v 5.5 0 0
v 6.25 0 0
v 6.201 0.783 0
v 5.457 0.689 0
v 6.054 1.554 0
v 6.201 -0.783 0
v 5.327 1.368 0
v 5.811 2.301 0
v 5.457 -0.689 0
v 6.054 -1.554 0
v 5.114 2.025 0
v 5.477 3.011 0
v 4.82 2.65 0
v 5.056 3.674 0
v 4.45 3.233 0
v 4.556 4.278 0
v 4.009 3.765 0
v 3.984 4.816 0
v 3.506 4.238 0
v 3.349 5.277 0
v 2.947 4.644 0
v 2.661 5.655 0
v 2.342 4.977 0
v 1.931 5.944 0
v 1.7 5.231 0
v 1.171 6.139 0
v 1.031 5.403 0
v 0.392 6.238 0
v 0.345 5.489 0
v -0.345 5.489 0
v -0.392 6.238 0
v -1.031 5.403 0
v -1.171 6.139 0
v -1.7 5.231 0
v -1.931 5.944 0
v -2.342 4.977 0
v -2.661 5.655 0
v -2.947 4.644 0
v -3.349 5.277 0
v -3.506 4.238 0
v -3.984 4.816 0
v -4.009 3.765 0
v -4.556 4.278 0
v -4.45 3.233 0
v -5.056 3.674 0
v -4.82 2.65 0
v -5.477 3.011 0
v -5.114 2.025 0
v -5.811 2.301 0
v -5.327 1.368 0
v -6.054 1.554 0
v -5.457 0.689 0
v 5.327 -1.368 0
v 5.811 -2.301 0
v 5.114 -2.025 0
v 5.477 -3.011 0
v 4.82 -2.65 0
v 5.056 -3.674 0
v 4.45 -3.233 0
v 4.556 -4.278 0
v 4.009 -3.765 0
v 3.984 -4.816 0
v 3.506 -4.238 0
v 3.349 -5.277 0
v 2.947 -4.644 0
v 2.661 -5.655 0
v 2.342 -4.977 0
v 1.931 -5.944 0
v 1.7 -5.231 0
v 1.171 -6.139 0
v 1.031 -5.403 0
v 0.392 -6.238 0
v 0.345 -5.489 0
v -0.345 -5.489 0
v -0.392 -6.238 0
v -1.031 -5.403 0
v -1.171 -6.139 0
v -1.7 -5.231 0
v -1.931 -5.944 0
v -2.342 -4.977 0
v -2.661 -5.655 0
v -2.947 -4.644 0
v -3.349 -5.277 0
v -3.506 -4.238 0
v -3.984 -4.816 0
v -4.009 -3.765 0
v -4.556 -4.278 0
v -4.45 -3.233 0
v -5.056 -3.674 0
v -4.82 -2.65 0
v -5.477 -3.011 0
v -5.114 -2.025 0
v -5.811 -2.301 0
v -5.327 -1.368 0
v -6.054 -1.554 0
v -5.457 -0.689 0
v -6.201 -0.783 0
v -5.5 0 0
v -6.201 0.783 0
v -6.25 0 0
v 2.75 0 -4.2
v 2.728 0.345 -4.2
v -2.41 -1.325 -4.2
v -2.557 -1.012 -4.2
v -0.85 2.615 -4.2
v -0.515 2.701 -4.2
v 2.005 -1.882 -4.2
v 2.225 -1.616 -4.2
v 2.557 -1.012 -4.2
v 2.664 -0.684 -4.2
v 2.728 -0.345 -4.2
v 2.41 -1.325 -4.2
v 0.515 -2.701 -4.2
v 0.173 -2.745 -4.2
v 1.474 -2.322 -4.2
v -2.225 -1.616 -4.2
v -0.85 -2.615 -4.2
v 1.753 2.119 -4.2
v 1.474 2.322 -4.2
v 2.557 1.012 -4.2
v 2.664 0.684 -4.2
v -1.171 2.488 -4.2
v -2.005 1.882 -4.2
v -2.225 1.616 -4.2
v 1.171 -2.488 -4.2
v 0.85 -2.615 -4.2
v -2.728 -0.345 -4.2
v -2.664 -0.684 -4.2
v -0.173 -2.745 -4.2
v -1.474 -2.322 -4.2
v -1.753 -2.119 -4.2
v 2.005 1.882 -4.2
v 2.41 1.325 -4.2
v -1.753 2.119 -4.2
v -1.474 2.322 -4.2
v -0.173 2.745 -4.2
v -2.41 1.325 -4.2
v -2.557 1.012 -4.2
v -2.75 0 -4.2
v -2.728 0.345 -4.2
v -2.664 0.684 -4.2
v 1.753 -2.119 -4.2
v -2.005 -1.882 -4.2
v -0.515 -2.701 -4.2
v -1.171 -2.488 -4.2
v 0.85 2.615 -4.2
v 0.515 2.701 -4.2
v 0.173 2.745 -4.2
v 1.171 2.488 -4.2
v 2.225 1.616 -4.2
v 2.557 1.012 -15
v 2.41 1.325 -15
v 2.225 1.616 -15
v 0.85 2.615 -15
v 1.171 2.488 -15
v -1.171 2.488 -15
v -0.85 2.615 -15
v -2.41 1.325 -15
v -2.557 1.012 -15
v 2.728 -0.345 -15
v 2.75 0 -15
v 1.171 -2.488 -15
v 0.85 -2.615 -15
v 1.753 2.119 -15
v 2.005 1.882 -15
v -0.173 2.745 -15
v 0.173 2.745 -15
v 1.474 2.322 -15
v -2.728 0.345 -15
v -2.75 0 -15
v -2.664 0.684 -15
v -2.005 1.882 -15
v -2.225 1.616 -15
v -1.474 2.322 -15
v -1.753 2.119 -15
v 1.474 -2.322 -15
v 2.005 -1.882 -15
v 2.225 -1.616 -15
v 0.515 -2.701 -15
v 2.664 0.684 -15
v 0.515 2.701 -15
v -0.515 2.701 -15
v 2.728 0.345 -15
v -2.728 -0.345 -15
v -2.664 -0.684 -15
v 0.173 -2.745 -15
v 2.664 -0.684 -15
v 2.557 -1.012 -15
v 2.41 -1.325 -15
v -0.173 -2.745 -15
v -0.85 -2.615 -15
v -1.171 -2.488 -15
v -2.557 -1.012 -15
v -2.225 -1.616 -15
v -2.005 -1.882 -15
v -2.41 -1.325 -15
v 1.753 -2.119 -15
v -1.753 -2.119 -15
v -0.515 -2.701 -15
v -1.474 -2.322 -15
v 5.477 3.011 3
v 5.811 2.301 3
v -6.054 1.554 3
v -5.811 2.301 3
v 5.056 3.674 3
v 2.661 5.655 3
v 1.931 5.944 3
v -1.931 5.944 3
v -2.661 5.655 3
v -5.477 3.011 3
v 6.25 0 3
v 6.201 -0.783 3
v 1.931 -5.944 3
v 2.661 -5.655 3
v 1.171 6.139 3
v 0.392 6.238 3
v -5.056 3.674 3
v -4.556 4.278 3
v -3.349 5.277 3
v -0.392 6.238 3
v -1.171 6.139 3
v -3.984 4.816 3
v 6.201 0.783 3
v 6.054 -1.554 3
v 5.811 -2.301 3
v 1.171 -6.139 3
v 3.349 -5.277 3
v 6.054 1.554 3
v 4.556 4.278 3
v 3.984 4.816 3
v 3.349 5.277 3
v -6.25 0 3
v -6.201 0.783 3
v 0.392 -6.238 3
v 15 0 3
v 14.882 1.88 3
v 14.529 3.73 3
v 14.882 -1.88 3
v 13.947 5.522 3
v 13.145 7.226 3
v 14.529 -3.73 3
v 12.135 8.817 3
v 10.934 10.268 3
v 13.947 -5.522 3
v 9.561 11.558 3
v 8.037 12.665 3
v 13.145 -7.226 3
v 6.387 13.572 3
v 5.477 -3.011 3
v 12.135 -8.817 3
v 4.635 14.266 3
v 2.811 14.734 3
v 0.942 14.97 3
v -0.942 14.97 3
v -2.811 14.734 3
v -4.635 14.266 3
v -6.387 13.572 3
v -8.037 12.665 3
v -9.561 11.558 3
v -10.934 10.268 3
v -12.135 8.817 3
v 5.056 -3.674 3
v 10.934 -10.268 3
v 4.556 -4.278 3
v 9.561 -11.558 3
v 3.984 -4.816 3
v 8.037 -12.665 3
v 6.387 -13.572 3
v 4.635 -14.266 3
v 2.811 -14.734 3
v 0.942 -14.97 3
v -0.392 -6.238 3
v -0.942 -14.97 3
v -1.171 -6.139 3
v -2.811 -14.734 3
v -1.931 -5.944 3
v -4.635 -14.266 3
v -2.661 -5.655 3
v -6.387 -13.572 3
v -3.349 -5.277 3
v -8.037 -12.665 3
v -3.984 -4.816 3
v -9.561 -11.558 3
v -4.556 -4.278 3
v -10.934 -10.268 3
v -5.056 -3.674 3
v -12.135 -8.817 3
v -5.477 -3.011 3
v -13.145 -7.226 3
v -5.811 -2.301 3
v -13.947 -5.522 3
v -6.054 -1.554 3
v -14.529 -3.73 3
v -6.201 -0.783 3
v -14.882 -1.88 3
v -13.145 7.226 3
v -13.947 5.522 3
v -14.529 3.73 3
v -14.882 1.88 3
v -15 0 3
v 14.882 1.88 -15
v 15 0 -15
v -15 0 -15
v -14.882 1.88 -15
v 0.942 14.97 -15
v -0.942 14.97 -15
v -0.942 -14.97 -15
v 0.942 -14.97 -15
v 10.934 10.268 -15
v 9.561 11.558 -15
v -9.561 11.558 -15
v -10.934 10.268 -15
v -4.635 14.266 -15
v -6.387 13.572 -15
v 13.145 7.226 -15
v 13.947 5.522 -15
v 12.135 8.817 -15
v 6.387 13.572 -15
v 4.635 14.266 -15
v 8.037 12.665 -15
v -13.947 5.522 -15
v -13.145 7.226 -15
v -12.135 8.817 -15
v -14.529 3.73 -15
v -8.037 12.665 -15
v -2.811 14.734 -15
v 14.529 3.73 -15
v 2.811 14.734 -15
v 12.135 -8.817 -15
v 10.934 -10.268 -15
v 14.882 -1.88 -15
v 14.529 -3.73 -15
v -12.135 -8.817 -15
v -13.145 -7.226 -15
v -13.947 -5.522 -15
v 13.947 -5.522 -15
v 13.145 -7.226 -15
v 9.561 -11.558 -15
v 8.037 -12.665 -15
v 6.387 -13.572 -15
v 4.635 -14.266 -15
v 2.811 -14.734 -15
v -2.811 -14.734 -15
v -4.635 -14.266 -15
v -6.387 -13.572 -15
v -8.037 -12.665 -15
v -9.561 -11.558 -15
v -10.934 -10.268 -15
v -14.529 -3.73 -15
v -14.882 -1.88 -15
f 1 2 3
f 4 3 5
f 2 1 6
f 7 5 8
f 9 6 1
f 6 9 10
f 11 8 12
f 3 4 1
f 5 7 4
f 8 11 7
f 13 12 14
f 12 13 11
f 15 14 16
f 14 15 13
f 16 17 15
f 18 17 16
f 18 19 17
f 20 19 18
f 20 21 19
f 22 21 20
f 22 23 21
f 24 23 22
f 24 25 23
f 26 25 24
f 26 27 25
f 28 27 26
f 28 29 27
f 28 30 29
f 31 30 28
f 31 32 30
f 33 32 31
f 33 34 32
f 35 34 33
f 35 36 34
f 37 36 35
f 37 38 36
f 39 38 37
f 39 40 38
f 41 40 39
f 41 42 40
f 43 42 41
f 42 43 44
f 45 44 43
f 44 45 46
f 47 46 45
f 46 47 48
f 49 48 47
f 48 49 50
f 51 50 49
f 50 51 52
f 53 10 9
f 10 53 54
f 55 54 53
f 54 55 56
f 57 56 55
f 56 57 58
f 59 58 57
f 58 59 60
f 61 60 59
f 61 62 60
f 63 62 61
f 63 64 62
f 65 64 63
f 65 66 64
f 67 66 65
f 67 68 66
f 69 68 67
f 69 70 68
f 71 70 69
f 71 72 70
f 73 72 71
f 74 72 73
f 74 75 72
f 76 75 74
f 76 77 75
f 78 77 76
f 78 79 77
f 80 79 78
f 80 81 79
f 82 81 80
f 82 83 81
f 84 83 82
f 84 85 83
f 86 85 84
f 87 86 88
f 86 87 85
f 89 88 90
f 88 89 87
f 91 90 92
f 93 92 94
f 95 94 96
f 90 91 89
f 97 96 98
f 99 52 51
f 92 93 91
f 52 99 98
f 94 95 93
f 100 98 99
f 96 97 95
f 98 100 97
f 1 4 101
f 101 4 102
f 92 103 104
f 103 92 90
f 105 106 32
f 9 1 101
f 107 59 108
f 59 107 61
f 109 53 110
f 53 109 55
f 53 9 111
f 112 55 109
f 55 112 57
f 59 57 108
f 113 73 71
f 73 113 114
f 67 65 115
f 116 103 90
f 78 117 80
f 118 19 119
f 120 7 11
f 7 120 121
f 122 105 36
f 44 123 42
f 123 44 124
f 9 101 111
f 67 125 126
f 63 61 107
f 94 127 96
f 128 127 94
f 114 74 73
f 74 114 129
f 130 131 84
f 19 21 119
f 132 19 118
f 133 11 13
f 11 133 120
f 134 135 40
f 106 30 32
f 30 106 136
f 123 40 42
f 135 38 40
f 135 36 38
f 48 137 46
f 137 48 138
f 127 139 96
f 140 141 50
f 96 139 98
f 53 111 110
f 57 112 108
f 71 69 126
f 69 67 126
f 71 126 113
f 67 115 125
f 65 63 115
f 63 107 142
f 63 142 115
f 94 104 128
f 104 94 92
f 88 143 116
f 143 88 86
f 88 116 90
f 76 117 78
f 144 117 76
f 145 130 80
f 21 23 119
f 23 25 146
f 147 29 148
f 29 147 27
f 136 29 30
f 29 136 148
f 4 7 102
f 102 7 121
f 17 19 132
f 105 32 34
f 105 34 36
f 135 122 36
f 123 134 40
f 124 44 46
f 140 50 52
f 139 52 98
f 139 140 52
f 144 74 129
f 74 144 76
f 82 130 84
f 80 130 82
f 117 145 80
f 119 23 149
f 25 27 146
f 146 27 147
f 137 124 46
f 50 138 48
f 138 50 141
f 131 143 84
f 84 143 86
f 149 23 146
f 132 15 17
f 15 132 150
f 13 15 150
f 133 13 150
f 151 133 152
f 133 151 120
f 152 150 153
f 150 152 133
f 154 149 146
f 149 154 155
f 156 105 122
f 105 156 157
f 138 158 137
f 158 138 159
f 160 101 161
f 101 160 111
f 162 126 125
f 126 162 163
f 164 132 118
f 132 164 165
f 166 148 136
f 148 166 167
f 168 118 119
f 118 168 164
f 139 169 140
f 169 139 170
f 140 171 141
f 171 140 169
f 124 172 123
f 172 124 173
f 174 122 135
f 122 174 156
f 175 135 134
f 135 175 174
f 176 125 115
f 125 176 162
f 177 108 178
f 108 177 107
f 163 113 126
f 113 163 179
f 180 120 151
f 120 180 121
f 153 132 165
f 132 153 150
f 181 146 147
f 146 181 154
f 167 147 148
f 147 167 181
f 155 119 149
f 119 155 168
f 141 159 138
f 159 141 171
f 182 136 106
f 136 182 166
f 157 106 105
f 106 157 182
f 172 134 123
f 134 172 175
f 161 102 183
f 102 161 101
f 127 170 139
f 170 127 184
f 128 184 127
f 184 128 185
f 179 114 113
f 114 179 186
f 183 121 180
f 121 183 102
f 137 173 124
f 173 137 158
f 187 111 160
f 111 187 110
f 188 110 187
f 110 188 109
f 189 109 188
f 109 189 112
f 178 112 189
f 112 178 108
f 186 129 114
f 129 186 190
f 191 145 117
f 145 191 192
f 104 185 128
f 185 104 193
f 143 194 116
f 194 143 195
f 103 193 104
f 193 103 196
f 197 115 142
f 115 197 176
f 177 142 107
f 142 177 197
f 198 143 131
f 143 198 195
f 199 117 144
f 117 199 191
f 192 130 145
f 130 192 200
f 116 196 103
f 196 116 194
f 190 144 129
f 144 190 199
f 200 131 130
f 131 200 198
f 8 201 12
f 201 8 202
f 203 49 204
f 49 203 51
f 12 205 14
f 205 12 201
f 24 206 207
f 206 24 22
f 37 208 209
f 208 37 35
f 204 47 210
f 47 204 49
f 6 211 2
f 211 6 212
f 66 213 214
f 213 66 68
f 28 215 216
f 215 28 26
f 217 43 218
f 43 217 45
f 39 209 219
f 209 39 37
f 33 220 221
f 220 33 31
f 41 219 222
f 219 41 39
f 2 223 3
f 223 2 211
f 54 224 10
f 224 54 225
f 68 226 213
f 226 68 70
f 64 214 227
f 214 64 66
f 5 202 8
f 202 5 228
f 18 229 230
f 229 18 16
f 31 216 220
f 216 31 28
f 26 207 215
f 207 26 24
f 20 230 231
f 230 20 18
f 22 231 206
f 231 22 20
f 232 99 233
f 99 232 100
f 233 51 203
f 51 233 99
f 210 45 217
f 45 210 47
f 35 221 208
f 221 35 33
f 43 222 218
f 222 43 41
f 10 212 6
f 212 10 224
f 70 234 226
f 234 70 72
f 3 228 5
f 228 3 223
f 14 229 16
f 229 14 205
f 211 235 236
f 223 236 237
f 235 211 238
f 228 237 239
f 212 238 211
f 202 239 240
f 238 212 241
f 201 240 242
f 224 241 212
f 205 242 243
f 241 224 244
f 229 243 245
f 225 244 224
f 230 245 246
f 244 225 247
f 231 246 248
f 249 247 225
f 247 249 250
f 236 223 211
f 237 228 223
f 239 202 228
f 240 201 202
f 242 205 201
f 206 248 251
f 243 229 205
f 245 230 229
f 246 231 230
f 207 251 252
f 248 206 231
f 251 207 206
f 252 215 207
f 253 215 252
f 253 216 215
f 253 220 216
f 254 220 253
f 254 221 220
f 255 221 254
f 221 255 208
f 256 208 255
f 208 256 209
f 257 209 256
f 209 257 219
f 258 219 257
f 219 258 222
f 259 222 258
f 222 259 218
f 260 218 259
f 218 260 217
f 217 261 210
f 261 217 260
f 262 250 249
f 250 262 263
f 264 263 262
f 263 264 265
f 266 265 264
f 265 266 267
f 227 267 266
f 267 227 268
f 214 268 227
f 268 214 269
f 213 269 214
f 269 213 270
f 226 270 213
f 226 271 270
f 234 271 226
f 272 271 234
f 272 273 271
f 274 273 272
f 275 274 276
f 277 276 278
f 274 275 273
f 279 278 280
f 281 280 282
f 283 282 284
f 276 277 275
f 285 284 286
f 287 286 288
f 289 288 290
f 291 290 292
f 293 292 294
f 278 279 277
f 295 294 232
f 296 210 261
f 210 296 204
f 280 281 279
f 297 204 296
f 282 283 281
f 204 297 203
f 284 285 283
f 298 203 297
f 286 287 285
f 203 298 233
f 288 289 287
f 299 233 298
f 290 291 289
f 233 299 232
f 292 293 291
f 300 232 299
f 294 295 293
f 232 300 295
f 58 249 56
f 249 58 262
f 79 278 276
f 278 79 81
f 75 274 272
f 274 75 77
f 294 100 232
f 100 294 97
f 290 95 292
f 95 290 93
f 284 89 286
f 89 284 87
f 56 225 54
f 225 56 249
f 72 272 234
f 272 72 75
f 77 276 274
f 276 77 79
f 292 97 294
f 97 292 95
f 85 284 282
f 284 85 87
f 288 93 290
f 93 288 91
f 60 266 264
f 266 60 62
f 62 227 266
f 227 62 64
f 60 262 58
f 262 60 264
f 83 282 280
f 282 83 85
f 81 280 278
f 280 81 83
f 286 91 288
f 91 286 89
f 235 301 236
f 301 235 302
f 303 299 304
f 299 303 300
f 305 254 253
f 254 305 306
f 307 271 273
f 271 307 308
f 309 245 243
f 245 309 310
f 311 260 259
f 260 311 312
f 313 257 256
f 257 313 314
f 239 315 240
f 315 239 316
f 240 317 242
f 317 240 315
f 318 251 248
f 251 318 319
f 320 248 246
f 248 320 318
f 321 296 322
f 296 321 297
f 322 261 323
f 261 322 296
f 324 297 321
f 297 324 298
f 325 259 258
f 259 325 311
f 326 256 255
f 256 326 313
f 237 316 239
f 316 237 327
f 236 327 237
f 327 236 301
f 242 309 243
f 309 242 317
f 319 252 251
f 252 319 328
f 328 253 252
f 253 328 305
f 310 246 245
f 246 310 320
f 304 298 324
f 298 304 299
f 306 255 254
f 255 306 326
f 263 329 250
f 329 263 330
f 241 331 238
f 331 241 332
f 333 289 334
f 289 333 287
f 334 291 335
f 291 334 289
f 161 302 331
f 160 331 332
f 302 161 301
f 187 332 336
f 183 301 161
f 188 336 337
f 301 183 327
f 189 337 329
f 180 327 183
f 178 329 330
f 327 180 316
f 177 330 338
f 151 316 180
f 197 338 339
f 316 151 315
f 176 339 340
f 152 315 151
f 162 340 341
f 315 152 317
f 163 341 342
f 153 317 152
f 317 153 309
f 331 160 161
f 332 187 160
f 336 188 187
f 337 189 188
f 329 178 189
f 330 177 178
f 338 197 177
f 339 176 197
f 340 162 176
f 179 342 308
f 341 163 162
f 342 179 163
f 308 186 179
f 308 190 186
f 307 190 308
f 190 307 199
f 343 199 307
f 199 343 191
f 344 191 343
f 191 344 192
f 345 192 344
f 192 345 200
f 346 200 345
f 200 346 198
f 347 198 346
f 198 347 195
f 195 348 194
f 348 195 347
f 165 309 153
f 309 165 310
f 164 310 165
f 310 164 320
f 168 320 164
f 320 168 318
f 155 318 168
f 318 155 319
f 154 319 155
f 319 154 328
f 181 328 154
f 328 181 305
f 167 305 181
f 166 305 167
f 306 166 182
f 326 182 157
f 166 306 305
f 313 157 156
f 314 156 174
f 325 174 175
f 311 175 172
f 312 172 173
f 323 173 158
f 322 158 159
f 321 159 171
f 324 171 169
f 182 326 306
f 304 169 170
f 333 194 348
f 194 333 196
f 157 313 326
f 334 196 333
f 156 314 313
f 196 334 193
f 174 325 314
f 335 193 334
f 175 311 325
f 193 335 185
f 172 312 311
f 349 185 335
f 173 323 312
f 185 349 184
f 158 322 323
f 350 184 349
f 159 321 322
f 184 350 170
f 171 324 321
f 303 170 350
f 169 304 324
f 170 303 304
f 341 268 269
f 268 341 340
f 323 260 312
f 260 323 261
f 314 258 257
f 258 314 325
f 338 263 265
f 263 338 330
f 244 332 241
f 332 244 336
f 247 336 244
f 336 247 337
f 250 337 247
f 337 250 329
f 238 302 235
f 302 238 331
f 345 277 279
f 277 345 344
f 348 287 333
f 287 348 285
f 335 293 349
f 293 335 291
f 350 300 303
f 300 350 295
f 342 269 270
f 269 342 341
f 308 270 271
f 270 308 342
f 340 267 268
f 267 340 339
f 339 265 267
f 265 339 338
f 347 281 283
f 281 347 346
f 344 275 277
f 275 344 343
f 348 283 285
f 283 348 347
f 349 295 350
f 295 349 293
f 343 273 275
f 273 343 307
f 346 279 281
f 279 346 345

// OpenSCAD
$fn = 50;

difference() {
	union() {
		translate(v = [0, 0, -15.0]) {
			cylinder(h = 18, r = 15.0);
		}
	}
	union() {
		translate(v = [0, 0, 0]) {
			rotate(a = [0, 0, 0]) {
				difference() {
					union() {
						translate(v = [0, 0, -18.0]) {
							cylinder(h = 18, r = 2.25);
						}
						translate(v = [0, 0, -4.2]) {
							cylinder(h = 4.2, r1 = 2.75, r2 = 5.5);
						}
						translate(v = [0, 0, -18.0]) {
							cylinder(h = 18, r = 2.75);
						}
						translate(v = [0, 0, -18.0]) {
							cylinder(h = 18, r = 2.25);
						}
					}
					union();
				}
			}
		}
		#cylinder(h = 3, r = 6.25);
	}
}
